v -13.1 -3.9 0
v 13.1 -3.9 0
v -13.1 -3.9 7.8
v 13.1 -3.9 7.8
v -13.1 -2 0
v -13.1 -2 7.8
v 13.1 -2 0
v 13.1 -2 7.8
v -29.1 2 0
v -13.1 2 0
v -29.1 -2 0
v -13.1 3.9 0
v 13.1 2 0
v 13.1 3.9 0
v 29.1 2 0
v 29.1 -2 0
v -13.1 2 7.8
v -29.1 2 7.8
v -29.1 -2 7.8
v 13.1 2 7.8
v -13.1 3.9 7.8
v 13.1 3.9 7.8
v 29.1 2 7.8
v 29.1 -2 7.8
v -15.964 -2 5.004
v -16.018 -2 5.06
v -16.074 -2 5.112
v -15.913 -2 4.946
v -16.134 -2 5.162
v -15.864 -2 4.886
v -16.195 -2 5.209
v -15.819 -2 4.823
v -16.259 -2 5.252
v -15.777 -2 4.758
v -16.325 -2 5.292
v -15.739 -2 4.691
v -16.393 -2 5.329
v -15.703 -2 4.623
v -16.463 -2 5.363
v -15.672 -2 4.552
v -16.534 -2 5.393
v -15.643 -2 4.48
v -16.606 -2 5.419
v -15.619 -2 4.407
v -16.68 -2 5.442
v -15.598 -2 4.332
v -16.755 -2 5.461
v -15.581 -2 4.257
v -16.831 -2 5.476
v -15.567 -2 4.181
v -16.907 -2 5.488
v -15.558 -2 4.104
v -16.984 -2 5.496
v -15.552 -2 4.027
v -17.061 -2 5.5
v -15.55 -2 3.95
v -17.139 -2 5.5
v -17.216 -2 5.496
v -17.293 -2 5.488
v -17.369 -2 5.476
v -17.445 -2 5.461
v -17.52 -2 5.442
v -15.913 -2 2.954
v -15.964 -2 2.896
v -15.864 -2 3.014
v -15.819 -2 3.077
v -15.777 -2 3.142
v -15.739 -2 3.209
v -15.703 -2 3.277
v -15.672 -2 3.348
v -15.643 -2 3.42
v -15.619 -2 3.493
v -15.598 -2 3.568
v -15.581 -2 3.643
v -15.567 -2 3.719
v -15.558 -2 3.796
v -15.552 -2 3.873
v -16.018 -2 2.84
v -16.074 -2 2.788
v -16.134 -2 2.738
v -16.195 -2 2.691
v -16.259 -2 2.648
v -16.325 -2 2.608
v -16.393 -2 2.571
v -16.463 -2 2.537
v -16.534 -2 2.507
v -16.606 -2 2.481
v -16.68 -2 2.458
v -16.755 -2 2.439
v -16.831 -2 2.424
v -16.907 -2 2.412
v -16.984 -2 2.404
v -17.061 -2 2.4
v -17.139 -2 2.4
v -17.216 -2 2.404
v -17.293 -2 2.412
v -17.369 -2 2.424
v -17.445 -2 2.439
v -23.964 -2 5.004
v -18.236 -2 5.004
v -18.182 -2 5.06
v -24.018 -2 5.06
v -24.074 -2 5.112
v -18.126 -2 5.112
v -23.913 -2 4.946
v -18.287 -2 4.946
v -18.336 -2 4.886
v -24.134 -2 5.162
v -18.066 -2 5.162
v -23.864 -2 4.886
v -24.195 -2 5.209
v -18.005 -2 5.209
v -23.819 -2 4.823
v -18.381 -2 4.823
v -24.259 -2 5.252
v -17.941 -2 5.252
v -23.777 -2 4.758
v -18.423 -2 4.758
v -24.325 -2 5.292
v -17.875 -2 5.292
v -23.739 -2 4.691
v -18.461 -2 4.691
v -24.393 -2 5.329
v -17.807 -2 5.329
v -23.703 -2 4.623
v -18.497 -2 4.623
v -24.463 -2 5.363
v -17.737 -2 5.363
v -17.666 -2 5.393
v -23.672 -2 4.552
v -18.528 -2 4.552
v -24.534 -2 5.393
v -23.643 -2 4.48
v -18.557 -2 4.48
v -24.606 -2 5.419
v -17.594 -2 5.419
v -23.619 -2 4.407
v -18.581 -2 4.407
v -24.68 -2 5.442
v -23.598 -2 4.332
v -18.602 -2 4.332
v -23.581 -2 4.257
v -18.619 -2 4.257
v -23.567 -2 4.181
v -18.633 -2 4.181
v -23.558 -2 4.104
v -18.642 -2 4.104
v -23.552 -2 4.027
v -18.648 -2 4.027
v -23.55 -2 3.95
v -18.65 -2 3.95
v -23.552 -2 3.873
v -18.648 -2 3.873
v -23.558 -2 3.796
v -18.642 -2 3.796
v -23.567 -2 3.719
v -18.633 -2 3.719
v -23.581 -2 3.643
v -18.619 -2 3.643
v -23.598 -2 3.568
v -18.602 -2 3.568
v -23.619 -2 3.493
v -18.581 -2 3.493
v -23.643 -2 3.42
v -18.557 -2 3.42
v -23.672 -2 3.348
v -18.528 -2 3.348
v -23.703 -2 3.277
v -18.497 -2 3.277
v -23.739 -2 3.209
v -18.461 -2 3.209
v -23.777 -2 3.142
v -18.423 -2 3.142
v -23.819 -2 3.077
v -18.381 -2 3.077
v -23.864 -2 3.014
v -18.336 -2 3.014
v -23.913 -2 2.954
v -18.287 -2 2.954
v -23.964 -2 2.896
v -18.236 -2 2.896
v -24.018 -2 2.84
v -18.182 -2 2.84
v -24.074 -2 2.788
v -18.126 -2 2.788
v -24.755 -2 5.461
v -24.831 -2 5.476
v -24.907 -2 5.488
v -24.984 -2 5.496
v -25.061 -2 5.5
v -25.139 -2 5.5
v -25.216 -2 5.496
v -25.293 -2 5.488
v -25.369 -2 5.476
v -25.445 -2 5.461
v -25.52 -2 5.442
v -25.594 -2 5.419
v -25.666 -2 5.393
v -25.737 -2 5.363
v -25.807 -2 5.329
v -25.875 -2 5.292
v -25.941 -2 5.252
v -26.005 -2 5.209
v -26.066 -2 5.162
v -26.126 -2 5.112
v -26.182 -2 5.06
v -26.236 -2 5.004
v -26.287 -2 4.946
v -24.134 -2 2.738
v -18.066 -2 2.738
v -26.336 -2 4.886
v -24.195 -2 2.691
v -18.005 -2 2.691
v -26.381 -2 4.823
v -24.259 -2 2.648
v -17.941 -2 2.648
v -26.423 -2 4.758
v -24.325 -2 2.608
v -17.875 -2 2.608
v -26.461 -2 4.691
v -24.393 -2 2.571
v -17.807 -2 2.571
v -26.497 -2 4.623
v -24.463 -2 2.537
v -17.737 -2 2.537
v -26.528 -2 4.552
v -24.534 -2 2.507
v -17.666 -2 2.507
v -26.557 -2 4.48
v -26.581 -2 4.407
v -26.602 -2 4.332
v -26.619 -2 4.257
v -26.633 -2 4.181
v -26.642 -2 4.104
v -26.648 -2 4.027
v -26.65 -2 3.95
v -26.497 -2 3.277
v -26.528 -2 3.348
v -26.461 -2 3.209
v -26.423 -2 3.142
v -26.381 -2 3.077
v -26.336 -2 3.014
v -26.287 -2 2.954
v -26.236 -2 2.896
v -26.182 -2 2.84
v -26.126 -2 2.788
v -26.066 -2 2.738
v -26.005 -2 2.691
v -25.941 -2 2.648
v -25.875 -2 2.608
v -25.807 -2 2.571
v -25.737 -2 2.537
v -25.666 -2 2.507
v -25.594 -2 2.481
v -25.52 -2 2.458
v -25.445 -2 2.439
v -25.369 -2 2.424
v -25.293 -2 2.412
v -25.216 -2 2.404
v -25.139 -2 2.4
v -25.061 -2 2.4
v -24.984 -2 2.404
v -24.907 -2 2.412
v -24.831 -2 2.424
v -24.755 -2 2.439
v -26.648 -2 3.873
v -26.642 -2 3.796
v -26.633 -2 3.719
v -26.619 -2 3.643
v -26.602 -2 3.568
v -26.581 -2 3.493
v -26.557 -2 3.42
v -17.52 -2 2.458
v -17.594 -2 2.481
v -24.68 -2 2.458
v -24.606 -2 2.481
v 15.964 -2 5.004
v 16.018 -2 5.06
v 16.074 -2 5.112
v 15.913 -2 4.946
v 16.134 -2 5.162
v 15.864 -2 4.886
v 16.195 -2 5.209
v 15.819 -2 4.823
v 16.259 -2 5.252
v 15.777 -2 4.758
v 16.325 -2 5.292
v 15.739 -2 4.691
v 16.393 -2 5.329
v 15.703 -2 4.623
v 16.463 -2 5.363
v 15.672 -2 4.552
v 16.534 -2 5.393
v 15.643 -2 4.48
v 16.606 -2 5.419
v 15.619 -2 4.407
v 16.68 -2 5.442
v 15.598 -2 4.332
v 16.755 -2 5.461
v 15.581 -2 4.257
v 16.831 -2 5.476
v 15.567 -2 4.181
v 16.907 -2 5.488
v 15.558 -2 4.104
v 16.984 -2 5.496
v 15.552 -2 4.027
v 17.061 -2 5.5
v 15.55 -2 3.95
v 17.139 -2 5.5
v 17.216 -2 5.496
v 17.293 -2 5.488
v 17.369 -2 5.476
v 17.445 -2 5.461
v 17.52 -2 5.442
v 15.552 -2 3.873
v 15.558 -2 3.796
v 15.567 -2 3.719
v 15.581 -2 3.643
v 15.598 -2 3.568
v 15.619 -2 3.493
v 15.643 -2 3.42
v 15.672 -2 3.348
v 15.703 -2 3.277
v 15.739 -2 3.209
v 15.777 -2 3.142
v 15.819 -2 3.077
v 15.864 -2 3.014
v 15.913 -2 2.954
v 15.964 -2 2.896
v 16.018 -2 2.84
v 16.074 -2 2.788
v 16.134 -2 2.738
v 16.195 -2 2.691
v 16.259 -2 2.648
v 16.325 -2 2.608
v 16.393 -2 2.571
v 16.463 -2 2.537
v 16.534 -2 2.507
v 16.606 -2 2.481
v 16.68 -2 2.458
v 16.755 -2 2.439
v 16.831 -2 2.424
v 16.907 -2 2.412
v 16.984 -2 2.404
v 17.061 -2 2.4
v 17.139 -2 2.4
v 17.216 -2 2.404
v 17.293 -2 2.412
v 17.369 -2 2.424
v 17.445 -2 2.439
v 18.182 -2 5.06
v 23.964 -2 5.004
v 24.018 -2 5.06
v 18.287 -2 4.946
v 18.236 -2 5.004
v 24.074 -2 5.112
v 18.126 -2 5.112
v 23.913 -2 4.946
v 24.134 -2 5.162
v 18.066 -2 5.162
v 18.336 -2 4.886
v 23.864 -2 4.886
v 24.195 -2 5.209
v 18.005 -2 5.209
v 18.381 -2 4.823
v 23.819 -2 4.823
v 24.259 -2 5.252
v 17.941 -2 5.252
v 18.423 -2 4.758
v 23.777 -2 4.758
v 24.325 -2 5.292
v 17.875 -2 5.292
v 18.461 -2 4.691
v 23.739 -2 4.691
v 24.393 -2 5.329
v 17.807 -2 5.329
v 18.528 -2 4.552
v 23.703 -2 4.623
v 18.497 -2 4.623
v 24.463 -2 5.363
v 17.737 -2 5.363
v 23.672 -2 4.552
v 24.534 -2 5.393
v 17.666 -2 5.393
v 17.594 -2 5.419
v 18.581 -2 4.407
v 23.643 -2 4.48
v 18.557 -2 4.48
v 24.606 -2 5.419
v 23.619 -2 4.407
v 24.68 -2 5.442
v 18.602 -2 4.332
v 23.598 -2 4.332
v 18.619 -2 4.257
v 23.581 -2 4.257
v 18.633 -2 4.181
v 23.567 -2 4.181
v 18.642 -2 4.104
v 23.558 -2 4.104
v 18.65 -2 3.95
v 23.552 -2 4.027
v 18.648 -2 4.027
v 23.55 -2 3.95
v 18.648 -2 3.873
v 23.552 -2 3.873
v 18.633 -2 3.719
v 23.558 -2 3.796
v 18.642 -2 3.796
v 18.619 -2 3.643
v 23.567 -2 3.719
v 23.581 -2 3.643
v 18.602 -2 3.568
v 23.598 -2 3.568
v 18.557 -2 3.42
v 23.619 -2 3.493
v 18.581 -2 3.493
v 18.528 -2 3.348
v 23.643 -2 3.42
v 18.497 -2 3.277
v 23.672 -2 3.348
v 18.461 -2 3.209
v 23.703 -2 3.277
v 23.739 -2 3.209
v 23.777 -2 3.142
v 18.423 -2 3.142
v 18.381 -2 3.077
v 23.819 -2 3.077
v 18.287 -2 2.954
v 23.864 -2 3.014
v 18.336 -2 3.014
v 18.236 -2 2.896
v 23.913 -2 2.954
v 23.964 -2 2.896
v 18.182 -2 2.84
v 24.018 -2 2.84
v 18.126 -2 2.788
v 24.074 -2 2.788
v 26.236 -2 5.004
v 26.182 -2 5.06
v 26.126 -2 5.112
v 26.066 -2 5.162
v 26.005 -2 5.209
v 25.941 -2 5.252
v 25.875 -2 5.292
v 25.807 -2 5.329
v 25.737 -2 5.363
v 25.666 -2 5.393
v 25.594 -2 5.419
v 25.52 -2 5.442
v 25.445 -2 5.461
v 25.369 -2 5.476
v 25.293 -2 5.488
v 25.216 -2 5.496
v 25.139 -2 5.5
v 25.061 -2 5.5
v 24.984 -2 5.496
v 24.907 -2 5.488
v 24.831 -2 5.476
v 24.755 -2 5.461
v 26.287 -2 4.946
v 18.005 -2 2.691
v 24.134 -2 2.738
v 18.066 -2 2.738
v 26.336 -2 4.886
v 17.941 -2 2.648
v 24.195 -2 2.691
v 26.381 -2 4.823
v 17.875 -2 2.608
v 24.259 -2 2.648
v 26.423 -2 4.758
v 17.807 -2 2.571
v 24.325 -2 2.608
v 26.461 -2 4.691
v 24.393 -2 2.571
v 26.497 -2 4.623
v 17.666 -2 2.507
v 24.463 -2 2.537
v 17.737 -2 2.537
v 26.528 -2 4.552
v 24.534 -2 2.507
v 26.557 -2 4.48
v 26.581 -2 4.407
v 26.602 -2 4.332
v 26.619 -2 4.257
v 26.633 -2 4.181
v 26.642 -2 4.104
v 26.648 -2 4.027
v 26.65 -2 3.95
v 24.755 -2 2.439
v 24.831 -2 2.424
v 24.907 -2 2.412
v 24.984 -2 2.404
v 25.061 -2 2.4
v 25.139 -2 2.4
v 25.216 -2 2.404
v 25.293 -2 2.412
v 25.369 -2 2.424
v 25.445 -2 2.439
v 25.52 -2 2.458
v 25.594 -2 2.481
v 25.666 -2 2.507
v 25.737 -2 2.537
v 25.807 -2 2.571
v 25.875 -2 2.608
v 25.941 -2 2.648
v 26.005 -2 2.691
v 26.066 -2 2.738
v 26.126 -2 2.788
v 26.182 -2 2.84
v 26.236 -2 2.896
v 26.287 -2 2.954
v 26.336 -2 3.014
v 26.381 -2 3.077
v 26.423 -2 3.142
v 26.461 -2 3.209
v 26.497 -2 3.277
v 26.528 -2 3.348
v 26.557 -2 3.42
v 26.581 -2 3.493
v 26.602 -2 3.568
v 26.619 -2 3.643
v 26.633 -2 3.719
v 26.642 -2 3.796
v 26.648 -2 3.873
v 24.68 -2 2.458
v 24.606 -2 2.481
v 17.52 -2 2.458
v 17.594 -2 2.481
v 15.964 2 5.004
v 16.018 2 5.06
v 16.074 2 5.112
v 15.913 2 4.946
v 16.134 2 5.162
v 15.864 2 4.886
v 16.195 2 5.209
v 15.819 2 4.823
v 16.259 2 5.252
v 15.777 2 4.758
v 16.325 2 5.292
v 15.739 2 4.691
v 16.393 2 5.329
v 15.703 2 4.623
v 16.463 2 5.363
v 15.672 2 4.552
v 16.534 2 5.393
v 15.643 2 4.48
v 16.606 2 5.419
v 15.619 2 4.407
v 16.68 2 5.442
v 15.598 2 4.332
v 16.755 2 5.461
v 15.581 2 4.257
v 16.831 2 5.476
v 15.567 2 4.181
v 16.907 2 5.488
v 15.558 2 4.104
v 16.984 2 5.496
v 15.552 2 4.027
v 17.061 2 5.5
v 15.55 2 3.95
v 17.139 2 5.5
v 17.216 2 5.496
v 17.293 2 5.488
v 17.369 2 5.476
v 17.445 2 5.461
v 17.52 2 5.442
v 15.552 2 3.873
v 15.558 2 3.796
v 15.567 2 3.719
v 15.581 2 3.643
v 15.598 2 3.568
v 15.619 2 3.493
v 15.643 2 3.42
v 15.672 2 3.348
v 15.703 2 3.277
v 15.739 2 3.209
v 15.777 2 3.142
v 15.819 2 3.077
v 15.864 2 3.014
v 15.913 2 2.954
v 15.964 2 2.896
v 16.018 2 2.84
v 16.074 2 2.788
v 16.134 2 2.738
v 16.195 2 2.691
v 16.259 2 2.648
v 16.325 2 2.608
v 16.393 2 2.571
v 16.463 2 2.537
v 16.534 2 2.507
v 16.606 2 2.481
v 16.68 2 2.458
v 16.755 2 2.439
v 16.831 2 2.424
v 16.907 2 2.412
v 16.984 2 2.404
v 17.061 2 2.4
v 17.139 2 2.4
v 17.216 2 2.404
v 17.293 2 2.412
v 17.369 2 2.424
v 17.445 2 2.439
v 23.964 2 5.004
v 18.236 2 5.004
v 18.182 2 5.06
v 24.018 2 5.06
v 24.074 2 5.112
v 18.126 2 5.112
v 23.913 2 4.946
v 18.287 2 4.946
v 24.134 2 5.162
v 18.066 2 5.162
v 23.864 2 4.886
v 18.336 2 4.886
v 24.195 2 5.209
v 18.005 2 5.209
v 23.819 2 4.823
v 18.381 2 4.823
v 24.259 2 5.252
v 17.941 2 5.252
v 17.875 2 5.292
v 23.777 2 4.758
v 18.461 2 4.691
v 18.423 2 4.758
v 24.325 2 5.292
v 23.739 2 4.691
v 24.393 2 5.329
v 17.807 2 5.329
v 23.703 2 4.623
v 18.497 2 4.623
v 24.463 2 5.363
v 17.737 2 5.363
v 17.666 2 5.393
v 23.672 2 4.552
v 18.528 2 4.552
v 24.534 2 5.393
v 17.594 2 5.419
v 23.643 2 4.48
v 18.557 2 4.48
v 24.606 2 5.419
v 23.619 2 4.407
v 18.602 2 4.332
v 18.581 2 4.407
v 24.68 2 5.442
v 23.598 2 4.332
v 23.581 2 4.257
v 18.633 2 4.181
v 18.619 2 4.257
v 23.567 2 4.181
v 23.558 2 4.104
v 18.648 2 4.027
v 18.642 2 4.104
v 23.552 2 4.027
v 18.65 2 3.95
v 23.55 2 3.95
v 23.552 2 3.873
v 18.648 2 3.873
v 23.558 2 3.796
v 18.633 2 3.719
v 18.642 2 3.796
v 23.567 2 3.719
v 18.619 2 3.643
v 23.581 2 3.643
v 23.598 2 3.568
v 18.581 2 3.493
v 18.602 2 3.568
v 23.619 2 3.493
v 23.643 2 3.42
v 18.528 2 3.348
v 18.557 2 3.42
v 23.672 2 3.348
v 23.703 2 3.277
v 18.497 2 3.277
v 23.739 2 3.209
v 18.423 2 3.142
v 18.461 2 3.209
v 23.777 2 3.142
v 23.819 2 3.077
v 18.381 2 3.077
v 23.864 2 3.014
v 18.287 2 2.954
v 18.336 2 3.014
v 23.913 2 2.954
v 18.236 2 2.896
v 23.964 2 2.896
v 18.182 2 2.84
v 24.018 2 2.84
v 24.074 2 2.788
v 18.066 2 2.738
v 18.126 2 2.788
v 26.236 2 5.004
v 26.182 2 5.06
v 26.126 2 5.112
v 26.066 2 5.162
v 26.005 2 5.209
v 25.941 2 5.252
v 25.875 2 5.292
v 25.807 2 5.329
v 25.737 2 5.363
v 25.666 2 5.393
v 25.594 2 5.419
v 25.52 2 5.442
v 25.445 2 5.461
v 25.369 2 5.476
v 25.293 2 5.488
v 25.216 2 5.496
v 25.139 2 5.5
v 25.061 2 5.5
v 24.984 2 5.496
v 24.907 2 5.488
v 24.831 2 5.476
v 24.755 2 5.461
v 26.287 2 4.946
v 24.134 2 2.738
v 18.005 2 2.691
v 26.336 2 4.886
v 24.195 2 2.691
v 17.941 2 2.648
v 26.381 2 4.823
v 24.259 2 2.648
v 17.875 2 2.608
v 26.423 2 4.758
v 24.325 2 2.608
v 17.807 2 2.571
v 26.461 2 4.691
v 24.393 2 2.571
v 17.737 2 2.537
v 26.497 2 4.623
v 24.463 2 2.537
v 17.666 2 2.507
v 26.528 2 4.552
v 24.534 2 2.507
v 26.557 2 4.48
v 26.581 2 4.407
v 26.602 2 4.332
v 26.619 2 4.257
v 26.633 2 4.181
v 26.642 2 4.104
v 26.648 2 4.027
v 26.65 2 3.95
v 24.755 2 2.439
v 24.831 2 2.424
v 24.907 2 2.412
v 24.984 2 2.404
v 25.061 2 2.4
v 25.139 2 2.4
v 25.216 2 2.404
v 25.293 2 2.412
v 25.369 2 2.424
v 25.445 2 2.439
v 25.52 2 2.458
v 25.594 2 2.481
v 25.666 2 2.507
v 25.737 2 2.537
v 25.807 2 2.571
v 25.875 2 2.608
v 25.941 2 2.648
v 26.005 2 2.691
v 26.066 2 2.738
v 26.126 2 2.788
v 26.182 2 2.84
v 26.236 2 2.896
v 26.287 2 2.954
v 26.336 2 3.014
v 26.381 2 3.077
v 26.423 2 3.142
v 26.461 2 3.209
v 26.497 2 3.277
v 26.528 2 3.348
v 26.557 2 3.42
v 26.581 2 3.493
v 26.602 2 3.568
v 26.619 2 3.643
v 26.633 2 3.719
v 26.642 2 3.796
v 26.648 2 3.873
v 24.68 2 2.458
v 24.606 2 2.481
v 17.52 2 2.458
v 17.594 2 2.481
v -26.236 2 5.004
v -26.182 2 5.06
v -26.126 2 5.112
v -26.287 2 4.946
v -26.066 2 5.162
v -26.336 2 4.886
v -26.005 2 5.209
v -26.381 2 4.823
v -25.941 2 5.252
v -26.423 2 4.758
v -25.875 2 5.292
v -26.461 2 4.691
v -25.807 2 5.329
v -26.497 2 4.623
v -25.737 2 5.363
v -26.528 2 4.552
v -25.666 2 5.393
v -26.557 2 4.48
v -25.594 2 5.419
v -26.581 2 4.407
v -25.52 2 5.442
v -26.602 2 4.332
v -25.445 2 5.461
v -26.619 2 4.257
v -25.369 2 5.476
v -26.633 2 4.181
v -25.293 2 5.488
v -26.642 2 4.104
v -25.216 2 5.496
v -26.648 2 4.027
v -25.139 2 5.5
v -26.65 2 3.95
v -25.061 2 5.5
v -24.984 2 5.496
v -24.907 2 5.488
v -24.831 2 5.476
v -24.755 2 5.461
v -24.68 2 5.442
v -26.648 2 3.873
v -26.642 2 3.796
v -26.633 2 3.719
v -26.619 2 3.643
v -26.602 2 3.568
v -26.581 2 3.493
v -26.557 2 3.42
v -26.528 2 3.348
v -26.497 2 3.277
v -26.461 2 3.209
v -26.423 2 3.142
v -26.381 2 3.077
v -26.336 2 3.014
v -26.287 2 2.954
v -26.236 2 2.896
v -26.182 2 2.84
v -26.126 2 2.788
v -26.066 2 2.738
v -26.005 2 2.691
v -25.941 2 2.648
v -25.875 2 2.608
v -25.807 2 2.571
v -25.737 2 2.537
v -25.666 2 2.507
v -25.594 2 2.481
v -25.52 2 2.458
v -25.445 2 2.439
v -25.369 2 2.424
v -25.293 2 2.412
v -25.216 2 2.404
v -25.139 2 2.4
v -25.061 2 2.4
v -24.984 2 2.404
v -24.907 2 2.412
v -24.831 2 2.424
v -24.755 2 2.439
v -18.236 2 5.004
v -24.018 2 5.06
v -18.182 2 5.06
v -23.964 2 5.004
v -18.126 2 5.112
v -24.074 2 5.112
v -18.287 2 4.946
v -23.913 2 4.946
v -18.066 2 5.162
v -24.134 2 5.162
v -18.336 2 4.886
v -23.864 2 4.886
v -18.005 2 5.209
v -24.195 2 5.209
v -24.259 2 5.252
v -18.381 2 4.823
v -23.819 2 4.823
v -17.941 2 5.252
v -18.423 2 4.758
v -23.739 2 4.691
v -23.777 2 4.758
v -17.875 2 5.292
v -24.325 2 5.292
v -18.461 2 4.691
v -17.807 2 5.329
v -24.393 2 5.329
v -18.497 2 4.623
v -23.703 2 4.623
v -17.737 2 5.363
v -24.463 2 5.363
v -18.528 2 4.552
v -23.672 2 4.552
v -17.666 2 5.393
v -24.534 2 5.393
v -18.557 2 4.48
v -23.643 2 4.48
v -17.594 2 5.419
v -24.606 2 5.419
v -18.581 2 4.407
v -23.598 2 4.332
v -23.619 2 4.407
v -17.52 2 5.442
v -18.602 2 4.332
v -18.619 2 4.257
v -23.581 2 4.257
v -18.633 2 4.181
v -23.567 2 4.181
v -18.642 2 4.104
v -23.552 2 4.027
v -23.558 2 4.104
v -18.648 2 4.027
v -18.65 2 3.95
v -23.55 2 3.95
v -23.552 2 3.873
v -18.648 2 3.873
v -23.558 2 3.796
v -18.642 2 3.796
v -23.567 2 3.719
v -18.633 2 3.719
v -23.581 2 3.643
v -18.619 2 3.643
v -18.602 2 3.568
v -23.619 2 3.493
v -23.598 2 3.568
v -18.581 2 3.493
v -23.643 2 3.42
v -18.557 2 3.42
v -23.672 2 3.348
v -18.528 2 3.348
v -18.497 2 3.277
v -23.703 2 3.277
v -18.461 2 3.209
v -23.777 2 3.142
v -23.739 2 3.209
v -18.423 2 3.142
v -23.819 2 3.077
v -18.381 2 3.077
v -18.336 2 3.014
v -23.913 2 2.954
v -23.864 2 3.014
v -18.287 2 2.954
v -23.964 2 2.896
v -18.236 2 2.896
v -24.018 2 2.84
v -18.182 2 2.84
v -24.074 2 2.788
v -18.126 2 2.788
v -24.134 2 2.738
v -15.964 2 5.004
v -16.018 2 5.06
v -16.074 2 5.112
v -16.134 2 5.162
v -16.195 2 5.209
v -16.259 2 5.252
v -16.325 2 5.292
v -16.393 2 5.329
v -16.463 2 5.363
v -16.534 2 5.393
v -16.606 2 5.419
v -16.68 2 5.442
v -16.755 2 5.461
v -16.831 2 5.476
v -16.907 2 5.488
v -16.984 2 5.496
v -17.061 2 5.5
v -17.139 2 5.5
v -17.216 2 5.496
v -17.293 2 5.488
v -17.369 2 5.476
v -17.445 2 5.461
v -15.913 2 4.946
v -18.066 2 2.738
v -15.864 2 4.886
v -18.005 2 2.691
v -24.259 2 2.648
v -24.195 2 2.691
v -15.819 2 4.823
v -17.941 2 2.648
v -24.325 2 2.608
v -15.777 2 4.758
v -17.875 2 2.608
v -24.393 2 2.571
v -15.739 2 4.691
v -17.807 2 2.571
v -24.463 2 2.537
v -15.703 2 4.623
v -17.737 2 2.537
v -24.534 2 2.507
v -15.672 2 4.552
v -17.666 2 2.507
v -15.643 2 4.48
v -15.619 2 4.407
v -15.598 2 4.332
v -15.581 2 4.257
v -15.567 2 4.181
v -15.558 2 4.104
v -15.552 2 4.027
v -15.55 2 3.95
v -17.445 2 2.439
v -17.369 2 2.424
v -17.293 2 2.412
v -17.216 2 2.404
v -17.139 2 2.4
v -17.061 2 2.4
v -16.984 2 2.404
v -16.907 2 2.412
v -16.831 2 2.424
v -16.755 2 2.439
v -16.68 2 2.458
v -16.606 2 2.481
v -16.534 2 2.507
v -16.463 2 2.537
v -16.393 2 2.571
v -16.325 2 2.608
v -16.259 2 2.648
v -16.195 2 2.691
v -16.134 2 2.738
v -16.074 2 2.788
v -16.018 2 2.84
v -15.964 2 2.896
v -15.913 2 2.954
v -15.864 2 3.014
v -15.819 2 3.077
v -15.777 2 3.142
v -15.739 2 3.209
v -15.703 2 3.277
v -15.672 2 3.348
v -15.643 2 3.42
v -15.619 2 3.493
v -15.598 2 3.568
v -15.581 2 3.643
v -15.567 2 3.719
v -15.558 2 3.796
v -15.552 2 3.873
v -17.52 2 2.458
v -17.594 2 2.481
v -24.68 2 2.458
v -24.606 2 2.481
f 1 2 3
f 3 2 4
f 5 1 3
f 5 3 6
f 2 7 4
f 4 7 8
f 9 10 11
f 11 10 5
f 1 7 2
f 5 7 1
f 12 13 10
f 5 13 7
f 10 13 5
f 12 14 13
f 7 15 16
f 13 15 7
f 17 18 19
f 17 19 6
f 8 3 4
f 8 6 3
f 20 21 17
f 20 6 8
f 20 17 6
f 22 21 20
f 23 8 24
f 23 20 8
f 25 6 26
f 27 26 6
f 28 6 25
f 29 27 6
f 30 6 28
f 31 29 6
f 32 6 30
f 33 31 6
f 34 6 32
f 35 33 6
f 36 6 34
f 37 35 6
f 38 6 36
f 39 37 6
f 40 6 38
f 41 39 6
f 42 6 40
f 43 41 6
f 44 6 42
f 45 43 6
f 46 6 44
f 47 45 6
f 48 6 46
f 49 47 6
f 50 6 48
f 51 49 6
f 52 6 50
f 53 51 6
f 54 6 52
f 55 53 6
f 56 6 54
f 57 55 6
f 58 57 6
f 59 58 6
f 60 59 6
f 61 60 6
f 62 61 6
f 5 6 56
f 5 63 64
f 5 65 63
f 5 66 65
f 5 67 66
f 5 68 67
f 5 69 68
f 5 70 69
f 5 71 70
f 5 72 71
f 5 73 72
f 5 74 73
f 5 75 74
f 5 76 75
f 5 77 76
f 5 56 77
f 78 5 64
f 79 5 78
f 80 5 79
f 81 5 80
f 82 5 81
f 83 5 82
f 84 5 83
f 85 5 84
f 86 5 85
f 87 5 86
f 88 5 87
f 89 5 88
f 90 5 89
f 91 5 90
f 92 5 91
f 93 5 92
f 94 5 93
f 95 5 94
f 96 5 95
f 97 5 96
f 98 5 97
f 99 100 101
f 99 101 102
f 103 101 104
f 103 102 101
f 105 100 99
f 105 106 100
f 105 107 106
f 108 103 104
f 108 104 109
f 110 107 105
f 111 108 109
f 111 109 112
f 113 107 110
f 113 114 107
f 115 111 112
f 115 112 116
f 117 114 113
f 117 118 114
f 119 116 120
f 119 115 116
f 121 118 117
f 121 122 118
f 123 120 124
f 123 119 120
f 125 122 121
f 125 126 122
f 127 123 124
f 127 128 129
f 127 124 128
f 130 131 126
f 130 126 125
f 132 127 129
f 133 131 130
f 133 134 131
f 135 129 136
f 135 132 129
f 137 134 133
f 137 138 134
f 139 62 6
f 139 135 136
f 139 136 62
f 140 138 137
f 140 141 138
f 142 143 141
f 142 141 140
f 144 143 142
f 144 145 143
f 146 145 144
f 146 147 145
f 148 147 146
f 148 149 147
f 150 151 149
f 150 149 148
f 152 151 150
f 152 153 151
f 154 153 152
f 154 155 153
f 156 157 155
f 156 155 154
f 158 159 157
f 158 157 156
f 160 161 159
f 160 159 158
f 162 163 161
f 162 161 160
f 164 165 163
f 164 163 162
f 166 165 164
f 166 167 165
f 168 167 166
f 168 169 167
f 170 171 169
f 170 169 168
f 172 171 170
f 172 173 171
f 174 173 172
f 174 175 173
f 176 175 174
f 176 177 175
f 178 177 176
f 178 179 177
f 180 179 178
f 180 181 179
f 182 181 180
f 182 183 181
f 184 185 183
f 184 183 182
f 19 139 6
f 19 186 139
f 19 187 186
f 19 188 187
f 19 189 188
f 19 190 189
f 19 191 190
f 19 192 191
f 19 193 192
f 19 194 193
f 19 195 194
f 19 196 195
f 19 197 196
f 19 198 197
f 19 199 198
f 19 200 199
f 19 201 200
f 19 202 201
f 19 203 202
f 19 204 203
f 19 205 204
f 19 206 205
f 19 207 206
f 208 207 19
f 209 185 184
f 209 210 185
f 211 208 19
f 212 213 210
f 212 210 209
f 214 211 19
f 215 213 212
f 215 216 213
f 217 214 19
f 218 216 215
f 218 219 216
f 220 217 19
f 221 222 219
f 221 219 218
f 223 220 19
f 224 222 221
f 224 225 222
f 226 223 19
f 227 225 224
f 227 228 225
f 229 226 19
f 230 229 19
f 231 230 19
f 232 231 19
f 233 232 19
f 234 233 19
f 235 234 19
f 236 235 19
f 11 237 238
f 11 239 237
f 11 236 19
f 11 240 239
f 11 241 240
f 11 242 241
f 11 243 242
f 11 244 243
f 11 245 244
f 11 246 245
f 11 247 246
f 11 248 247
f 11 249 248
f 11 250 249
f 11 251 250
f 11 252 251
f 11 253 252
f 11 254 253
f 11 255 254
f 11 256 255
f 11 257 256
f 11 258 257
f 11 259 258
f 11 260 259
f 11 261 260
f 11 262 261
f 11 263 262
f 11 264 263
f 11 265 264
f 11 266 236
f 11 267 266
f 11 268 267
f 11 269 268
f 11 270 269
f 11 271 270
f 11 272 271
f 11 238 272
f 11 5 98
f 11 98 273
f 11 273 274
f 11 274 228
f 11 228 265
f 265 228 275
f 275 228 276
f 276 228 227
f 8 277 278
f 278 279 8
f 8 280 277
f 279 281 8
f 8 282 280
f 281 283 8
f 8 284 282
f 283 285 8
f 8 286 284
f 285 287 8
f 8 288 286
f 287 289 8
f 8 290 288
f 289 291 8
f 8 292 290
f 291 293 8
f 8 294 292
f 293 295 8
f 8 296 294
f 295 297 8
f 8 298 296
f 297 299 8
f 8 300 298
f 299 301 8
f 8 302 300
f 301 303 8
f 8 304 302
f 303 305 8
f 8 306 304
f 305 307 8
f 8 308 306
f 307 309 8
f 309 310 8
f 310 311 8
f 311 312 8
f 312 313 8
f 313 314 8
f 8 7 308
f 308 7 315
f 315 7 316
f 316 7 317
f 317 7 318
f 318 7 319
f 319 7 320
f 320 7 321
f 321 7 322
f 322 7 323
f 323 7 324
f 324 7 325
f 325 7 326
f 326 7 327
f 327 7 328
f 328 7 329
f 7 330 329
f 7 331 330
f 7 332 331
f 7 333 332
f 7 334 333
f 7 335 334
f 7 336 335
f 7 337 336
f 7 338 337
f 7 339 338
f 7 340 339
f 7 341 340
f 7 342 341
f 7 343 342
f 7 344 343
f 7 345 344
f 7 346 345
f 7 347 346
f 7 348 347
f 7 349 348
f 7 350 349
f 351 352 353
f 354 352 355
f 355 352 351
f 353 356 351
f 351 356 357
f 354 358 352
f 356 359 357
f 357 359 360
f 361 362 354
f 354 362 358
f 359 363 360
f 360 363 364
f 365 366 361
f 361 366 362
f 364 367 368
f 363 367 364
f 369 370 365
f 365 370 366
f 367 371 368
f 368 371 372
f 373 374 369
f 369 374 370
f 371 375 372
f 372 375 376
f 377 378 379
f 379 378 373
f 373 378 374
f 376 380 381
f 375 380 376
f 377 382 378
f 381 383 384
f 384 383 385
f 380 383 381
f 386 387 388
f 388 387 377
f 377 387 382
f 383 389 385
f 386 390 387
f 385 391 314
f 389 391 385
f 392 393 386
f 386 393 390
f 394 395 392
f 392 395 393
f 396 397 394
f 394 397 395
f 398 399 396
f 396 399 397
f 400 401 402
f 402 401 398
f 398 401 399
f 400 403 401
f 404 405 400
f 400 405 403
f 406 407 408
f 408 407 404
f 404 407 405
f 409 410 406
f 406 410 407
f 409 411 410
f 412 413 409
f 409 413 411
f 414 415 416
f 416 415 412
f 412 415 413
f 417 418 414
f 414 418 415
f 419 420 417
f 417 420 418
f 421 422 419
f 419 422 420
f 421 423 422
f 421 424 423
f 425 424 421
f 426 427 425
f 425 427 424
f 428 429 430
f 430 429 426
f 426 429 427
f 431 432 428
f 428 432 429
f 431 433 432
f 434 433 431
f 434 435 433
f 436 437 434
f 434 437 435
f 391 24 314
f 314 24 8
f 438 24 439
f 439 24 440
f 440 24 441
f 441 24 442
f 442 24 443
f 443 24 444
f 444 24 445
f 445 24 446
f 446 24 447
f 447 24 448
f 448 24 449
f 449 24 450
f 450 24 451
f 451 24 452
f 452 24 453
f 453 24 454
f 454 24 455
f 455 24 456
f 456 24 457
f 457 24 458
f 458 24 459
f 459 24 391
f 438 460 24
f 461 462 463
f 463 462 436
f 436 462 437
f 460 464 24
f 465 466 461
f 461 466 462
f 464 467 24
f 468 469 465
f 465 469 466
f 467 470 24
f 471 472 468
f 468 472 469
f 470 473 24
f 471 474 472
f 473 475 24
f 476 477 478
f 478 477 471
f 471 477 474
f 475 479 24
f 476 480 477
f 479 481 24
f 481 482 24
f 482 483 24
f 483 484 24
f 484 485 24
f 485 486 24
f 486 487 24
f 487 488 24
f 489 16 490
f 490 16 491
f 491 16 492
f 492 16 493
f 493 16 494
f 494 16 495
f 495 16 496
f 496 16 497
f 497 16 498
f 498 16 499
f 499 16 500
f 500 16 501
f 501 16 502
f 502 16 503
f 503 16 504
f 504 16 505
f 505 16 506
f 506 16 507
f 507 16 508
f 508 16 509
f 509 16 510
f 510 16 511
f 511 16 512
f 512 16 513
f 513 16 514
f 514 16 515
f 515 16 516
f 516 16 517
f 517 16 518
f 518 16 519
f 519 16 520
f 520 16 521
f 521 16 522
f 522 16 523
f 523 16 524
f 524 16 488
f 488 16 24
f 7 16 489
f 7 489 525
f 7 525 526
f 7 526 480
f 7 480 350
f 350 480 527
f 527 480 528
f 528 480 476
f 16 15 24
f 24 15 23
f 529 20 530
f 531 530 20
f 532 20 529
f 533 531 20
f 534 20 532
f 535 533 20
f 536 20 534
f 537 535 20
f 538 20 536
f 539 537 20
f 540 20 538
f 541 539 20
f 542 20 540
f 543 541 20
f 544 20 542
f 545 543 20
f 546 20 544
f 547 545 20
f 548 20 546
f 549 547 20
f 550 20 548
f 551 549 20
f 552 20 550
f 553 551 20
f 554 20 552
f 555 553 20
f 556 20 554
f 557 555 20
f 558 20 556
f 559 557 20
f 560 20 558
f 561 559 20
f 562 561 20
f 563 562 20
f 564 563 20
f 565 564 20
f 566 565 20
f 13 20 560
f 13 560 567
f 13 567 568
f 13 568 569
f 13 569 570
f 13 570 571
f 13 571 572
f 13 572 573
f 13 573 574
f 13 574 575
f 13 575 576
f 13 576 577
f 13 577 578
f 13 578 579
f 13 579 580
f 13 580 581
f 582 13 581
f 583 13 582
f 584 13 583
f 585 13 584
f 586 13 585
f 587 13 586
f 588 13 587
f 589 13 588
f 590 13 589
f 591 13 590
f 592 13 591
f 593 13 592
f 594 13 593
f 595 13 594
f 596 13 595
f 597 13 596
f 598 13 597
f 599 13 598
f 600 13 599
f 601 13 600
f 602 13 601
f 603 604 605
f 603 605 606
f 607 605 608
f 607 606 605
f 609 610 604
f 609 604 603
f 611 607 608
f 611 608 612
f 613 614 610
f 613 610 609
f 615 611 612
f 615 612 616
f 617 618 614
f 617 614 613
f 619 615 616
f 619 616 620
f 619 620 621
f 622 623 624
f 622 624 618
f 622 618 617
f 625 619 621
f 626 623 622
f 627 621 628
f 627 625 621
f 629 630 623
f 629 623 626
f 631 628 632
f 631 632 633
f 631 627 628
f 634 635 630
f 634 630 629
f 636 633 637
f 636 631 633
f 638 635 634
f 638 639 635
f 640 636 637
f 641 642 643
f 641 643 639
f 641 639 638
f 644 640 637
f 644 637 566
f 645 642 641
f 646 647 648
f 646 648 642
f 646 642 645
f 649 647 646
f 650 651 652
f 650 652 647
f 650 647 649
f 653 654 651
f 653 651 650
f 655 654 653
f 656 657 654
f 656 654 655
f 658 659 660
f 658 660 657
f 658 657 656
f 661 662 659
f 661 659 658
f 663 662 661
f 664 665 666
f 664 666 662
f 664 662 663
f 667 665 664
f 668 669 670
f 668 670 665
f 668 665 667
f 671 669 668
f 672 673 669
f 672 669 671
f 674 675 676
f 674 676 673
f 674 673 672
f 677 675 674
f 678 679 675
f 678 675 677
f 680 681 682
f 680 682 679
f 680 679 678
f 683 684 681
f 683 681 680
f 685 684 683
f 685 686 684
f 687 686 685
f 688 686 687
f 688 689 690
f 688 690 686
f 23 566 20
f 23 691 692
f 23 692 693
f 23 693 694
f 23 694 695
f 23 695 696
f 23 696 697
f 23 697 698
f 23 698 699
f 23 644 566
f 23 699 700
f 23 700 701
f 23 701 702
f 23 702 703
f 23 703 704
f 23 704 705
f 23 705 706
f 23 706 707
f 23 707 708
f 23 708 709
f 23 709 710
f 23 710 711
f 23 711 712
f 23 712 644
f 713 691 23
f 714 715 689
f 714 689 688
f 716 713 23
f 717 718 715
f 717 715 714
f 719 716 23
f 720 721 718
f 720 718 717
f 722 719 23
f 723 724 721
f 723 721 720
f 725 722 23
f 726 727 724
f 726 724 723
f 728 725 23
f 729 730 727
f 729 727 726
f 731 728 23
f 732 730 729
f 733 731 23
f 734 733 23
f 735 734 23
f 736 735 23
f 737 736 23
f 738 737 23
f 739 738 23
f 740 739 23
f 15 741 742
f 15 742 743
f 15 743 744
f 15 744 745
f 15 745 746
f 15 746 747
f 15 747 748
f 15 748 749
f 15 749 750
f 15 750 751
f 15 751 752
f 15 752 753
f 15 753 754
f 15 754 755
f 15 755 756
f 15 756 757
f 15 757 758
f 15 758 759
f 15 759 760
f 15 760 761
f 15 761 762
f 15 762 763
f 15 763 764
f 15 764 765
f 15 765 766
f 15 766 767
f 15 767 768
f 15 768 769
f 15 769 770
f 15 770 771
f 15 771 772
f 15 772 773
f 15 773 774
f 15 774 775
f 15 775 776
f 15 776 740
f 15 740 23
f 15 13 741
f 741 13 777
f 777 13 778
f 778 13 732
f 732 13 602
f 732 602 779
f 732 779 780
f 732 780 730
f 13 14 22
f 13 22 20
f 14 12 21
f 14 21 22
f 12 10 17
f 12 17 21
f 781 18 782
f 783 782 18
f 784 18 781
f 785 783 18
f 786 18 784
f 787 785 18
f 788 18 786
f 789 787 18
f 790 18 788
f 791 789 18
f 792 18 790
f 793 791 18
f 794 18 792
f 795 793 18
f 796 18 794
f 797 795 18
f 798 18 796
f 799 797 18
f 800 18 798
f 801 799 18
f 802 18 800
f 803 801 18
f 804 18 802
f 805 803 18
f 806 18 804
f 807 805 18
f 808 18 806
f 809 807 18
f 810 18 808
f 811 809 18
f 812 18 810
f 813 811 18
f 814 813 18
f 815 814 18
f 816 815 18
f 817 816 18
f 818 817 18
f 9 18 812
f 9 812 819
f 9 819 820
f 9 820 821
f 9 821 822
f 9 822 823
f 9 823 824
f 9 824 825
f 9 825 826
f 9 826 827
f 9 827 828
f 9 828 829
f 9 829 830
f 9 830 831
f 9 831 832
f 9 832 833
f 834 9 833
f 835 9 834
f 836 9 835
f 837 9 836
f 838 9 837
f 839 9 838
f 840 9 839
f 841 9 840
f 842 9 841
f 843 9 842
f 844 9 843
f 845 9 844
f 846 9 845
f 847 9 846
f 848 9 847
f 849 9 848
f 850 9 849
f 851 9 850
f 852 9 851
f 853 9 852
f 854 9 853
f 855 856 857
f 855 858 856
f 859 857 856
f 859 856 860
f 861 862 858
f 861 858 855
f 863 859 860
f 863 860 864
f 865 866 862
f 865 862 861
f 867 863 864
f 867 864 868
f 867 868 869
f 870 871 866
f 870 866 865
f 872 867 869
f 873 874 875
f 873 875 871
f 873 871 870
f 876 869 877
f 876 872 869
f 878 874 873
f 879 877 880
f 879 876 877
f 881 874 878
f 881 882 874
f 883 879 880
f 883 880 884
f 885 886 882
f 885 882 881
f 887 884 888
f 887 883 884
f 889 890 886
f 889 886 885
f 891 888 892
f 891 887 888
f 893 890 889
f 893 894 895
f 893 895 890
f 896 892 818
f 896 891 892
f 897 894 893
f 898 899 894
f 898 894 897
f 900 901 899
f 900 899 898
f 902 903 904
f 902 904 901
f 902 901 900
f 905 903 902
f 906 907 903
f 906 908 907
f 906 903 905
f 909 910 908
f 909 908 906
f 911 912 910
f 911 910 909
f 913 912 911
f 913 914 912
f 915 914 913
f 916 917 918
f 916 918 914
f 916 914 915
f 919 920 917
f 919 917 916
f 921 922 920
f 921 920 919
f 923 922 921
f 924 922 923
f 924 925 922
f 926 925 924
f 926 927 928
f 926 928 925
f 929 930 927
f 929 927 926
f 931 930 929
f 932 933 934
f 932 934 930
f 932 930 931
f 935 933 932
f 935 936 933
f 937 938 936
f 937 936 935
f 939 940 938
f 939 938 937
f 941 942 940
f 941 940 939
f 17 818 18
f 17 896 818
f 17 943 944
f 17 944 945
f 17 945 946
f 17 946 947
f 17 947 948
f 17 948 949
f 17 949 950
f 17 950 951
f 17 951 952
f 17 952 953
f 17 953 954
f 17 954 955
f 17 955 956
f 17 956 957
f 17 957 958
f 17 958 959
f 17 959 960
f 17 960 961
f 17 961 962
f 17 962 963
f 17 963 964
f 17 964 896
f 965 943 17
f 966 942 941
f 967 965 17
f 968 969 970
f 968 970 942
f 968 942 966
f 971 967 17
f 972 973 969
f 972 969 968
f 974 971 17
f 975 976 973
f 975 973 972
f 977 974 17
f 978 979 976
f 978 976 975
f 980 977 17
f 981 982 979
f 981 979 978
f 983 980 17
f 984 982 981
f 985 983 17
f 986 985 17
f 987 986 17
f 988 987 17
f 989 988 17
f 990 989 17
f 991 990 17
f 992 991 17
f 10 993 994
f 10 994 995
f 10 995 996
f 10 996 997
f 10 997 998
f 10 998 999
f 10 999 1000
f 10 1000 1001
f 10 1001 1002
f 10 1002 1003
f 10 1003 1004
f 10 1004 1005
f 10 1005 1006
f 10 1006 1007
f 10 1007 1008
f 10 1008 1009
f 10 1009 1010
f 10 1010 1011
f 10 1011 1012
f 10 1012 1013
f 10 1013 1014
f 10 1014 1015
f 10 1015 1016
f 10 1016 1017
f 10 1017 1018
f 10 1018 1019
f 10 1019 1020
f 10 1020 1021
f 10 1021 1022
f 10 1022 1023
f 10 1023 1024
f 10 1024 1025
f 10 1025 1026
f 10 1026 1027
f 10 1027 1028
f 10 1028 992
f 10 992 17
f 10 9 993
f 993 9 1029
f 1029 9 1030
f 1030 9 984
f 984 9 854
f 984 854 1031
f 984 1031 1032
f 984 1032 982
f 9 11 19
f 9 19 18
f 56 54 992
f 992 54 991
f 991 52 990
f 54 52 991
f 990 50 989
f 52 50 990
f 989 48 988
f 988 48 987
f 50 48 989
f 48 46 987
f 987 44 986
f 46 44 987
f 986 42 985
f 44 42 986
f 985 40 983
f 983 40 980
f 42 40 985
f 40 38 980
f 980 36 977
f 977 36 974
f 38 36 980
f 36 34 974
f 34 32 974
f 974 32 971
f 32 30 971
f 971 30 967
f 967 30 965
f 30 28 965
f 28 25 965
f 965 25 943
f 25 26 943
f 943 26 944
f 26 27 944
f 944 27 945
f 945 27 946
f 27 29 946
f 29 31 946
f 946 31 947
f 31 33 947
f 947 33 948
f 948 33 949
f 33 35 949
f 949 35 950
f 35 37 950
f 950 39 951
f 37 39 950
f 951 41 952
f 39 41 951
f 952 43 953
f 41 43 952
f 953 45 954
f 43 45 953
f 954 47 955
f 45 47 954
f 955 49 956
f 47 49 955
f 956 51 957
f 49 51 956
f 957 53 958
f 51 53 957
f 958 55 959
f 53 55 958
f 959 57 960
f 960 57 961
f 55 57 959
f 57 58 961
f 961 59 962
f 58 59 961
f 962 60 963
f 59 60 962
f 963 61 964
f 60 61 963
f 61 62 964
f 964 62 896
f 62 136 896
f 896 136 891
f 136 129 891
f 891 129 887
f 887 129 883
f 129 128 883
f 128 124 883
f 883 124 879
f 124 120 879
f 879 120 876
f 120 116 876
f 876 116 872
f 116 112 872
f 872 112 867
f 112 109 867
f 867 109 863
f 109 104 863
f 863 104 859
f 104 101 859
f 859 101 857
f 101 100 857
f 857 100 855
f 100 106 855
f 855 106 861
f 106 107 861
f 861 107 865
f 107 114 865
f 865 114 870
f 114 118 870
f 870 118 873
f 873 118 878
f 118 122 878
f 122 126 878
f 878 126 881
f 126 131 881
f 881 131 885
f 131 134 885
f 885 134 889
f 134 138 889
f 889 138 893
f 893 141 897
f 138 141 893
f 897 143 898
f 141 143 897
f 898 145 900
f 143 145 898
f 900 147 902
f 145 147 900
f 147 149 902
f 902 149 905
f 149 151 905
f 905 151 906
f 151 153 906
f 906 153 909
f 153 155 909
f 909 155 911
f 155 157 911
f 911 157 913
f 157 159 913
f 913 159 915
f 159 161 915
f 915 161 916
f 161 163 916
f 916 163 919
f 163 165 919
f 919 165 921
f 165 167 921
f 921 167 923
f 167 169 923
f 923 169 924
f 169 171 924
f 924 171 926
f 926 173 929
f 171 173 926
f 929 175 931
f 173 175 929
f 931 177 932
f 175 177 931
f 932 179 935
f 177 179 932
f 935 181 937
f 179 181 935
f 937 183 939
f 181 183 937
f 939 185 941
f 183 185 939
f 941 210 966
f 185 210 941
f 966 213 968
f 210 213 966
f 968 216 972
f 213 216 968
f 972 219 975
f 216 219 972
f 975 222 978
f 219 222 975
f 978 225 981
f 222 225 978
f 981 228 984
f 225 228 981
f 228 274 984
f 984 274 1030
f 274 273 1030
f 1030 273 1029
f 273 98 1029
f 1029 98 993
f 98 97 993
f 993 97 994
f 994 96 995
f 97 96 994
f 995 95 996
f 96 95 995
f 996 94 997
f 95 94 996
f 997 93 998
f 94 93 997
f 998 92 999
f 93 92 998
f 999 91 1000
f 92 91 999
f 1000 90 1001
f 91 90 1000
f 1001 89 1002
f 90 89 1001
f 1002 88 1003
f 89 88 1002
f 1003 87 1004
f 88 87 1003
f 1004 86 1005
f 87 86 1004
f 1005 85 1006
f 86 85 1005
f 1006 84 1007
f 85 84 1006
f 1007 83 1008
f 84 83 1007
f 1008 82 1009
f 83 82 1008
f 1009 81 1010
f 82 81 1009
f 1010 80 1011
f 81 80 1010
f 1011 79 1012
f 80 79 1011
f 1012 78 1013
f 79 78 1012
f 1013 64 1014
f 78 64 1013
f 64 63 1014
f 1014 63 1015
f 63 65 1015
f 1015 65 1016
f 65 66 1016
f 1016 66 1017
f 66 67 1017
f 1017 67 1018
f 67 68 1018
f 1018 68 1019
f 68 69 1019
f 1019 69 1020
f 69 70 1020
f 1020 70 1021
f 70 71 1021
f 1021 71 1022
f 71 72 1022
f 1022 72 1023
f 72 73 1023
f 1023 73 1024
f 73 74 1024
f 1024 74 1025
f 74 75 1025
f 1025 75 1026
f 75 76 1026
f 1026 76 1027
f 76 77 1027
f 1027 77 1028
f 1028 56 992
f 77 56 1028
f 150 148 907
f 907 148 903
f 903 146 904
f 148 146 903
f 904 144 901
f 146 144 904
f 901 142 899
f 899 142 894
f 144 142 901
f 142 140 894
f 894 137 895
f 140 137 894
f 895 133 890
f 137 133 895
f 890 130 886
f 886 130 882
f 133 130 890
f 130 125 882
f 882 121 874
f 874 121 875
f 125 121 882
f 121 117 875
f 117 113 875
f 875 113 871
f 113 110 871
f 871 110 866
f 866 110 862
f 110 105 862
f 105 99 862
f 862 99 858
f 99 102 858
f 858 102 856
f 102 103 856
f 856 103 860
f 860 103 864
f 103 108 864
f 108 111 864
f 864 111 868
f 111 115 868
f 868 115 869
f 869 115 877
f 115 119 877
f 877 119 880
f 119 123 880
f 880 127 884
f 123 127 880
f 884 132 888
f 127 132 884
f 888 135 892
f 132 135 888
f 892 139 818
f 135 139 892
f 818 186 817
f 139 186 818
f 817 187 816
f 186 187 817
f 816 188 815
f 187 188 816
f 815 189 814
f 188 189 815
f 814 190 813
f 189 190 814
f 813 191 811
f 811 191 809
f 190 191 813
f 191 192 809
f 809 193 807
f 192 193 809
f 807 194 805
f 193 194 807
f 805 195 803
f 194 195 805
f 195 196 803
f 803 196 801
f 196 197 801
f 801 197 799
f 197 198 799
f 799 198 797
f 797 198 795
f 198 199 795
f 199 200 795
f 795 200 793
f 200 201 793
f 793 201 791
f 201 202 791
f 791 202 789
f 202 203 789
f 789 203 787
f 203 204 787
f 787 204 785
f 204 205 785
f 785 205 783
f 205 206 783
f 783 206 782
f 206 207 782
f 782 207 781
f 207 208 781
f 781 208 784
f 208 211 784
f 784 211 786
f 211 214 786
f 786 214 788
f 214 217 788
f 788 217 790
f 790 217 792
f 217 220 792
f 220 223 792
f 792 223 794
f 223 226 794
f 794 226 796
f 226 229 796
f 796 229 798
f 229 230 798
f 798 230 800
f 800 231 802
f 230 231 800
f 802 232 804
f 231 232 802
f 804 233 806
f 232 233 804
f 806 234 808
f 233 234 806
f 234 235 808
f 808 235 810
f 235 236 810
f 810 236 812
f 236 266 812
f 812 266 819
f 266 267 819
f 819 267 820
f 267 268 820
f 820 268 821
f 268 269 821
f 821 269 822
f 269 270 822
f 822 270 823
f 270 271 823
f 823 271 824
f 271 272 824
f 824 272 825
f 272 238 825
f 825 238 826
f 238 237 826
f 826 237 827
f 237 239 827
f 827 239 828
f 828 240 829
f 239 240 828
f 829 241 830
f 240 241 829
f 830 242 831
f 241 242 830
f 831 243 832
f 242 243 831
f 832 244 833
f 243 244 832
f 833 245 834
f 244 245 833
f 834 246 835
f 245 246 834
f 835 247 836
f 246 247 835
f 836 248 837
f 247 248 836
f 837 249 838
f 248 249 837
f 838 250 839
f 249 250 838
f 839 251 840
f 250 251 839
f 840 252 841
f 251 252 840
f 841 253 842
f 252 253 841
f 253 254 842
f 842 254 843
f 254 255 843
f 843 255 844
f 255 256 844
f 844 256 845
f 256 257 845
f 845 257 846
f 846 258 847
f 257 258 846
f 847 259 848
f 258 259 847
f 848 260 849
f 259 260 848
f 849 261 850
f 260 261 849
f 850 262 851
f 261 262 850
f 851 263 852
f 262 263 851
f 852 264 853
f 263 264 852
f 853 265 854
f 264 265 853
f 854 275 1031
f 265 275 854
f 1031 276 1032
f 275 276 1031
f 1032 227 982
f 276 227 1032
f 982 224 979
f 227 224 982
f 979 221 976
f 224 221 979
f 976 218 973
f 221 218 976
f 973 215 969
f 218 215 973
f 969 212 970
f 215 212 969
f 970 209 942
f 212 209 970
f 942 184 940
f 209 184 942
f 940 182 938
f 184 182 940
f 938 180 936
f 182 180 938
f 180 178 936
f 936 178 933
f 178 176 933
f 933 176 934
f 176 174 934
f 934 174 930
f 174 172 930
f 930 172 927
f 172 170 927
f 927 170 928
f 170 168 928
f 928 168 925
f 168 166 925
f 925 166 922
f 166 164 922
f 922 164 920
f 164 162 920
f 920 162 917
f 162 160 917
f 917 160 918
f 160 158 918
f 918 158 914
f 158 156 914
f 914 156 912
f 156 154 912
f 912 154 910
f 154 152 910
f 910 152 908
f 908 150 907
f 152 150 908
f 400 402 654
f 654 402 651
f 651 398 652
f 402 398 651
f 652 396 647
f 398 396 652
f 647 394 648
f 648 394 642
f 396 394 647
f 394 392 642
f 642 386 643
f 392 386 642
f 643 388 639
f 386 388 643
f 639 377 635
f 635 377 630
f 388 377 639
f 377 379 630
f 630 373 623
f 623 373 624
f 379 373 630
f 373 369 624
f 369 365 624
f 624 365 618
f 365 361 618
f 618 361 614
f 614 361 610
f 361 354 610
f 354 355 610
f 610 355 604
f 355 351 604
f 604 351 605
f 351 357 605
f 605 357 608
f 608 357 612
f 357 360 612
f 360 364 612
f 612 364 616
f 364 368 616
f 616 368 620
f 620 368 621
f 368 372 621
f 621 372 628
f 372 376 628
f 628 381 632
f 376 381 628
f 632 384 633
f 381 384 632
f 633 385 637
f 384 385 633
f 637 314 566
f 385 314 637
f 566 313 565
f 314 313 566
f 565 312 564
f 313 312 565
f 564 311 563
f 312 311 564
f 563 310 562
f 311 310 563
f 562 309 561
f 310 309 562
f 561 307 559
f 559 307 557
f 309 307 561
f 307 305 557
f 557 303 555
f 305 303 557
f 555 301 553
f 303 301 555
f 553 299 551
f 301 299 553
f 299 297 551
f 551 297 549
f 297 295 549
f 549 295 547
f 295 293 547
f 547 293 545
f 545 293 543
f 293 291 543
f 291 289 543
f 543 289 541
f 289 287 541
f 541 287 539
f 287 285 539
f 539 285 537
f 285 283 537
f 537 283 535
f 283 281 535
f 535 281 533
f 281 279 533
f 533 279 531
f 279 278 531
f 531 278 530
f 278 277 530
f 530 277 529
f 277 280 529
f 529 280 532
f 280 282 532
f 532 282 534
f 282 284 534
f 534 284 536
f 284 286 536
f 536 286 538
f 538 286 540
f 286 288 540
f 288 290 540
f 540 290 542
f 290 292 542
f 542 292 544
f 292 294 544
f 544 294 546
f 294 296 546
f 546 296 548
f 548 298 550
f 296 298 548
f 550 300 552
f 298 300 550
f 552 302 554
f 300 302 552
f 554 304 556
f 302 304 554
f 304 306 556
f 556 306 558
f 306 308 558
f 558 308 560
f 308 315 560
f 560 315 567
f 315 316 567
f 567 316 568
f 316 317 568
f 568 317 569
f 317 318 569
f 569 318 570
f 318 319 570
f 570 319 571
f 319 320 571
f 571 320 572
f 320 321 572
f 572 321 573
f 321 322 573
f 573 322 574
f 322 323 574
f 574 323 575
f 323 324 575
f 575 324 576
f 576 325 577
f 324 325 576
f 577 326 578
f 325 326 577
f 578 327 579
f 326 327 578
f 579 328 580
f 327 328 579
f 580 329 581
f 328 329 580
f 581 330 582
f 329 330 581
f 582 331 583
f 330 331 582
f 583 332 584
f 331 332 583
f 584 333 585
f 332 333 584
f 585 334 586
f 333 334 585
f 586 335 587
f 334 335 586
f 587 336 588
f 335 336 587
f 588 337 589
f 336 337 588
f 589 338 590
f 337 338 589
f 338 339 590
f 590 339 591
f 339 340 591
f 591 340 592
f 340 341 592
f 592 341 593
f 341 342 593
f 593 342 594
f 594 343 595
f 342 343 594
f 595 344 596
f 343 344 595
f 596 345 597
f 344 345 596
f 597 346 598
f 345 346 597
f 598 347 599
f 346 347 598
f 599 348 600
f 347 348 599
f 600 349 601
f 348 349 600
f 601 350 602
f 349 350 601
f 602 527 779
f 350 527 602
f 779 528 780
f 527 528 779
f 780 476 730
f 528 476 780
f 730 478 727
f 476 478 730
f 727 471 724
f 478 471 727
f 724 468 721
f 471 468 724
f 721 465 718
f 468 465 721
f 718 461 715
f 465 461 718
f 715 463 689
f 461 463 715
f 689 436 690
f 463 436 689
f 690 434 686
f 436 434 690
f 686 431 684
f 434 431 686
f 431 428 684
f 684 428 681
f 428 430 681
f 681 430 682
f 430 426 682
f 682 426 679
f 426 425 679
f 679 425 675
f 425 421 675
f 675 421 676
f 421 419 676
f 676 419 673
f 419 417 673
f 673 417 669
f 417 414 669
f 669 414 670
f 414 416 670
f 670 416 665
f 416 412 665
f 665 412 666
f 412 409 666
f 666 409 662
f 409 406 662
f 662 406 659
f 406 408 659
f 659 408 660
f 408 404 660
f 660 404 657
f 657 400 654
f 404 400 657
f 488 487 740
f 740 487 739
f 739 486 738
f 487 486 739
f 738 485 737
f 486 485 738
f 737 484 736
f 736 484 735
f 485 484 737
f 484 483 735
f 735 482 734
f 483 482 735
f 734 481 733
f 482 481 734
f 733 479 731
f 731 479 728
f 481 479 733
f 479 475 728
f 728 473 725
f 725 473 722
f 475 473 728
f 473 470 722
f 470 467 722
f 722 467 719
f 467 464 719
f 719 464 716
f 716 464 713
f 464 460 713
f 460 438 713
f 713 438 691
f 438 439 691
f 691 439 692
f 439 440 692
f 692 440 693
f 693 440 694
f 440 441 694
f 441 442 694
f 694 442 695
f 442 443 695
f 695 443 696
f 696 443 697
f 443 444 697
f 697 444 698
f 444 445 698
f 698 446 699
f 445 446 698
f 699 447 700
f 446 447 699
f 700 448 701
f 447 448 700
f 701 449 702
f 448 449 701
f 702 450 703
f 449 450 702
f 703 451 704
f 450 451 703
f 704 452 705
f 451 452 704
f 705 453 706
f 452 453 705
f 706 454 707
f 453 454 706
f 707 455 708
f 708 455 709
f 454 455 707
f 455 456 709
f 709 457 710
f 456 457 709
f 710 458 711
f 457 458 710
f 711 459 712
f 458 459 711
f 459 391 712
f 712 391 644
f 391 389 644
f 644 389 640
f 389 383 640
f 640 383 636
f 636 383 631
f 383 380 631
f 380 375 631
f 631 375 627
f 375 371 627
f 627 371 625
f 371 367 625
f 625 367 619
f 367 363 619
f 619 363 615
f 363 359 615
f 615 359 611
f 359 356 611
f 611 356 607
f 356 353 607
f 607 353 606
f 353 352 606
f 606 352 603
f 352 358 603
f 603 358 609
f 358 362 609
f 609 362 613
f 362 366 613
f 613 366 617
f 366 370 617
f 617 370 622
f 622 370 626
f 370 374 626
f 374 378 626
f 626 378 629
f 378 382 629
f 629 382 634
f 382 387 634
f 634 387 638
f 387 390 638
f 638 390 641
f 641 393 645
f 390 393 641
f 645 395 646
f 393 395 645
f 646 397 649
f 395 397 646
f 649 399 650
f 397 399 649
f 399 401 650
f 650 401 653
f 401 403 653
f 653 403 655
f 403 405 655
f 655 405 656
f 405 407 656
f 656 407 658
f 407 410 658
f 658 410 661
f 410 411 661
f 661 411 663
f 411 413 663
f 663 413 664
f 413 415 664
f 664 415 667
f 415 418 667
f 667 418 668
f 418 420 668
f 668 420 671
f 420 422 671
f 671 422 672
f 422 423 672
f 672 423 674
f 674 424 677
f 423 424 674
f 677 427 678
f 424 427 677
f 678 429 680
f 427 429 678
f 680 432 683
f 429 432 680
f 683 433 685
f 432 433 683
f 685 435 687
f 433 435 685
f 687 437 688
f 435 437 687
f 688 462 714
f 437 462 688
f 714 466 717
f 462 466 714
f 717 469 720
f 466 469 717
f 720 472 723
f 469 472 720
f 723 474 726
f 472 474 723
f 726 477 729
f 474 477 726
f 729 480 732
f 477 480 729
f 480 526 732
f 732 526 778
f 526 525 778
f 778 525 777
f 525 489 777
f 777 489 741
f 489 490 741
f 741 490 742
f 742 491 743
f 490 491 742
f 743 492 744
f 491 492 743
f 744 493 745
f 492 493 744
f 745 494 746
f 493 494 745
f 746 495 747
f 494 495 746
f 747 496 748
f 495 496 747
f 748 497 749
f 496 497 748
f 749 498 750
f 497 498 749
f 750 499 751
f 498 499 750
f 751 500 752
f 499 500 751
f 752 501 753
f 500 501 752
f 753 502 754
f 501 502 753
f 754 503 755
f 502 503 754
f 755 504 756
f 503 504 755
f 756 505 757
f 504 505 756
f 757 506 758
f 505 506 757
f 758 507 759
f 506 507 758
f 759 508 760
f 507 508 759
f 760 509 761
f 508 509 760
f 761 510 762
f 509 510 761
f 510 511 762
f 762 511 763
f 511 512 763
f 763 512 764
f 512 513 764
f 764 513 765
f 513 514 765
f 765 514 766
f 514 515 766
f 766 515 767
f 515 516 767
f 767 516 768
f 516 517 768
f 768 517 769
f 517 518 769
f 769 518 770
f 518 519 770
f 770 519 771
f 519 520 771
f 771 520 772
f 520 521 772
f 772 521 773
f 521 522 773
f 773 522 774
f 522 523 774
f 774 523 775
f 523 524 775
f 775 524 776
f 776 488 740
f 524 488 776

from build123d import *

# Parameters (mm, degrees)
PAD_DEPTH       = 7.8
SKETCH001_R     = 1.55
POCKET_DEPTH    = 5.901
POCKET001_DEPTH = 5.901


with BuildPart() as part:
    # Sketch → Pad (new body)
    with BuildSketch(Plane.XY):
        Polygon((29.1, -2), (29.1, 2), (13.1, 2), (13.1, 3.9), (-13.1, 3.9), (-13.1, 2), (-29.1, 2), (-29.1, -2), (-13.1, -2), (-13.1, -3.9), (13.1, -3.9), (13.1, -2), align=None)
    extrude(amount=PAD_DEPTH)

    # Sketch001 (on Face3 of Pad) → Pocket (cut, through all)
    with BuildSketch(Plane.XZ.offset(2)):
        with Locations((-25.1, 3.95)):
            Circle(SKETCH001_R)
        with Locations((-17.1, 3.95)):
            Circle(SKETCH001_R)
        with Locations((17.1, 3.95)):
            Circle(SKETCH001_R)
        with Locations((25.1, 3.95)):
            Circle(SKETCH001_R)
    extrude(amount=-POCKET_DEPTH, mode=Mode.SUBTRACT)

    # Sketch001 (on Face3 of Pad) → Pocket001 (cut, through all)
    with BuildSketch(Plane.XZ.offset(2)):
        with Locations((-25.1, 3.95)):
            Circle(SKETCH001_R)
        with Locations((-17.1, 3.95)):
            Circle(SKETCH001_R)
        with Locations((17.1, 3.95)):
            Circle(SKETCH001_R)
        with Locations((25.1, 3.95)):
            Circle(SKETCH001_R)
    extrude(amount=-POCKET001_DEPTH, mode=Mode.SUBTRACT)


solid = part.part
